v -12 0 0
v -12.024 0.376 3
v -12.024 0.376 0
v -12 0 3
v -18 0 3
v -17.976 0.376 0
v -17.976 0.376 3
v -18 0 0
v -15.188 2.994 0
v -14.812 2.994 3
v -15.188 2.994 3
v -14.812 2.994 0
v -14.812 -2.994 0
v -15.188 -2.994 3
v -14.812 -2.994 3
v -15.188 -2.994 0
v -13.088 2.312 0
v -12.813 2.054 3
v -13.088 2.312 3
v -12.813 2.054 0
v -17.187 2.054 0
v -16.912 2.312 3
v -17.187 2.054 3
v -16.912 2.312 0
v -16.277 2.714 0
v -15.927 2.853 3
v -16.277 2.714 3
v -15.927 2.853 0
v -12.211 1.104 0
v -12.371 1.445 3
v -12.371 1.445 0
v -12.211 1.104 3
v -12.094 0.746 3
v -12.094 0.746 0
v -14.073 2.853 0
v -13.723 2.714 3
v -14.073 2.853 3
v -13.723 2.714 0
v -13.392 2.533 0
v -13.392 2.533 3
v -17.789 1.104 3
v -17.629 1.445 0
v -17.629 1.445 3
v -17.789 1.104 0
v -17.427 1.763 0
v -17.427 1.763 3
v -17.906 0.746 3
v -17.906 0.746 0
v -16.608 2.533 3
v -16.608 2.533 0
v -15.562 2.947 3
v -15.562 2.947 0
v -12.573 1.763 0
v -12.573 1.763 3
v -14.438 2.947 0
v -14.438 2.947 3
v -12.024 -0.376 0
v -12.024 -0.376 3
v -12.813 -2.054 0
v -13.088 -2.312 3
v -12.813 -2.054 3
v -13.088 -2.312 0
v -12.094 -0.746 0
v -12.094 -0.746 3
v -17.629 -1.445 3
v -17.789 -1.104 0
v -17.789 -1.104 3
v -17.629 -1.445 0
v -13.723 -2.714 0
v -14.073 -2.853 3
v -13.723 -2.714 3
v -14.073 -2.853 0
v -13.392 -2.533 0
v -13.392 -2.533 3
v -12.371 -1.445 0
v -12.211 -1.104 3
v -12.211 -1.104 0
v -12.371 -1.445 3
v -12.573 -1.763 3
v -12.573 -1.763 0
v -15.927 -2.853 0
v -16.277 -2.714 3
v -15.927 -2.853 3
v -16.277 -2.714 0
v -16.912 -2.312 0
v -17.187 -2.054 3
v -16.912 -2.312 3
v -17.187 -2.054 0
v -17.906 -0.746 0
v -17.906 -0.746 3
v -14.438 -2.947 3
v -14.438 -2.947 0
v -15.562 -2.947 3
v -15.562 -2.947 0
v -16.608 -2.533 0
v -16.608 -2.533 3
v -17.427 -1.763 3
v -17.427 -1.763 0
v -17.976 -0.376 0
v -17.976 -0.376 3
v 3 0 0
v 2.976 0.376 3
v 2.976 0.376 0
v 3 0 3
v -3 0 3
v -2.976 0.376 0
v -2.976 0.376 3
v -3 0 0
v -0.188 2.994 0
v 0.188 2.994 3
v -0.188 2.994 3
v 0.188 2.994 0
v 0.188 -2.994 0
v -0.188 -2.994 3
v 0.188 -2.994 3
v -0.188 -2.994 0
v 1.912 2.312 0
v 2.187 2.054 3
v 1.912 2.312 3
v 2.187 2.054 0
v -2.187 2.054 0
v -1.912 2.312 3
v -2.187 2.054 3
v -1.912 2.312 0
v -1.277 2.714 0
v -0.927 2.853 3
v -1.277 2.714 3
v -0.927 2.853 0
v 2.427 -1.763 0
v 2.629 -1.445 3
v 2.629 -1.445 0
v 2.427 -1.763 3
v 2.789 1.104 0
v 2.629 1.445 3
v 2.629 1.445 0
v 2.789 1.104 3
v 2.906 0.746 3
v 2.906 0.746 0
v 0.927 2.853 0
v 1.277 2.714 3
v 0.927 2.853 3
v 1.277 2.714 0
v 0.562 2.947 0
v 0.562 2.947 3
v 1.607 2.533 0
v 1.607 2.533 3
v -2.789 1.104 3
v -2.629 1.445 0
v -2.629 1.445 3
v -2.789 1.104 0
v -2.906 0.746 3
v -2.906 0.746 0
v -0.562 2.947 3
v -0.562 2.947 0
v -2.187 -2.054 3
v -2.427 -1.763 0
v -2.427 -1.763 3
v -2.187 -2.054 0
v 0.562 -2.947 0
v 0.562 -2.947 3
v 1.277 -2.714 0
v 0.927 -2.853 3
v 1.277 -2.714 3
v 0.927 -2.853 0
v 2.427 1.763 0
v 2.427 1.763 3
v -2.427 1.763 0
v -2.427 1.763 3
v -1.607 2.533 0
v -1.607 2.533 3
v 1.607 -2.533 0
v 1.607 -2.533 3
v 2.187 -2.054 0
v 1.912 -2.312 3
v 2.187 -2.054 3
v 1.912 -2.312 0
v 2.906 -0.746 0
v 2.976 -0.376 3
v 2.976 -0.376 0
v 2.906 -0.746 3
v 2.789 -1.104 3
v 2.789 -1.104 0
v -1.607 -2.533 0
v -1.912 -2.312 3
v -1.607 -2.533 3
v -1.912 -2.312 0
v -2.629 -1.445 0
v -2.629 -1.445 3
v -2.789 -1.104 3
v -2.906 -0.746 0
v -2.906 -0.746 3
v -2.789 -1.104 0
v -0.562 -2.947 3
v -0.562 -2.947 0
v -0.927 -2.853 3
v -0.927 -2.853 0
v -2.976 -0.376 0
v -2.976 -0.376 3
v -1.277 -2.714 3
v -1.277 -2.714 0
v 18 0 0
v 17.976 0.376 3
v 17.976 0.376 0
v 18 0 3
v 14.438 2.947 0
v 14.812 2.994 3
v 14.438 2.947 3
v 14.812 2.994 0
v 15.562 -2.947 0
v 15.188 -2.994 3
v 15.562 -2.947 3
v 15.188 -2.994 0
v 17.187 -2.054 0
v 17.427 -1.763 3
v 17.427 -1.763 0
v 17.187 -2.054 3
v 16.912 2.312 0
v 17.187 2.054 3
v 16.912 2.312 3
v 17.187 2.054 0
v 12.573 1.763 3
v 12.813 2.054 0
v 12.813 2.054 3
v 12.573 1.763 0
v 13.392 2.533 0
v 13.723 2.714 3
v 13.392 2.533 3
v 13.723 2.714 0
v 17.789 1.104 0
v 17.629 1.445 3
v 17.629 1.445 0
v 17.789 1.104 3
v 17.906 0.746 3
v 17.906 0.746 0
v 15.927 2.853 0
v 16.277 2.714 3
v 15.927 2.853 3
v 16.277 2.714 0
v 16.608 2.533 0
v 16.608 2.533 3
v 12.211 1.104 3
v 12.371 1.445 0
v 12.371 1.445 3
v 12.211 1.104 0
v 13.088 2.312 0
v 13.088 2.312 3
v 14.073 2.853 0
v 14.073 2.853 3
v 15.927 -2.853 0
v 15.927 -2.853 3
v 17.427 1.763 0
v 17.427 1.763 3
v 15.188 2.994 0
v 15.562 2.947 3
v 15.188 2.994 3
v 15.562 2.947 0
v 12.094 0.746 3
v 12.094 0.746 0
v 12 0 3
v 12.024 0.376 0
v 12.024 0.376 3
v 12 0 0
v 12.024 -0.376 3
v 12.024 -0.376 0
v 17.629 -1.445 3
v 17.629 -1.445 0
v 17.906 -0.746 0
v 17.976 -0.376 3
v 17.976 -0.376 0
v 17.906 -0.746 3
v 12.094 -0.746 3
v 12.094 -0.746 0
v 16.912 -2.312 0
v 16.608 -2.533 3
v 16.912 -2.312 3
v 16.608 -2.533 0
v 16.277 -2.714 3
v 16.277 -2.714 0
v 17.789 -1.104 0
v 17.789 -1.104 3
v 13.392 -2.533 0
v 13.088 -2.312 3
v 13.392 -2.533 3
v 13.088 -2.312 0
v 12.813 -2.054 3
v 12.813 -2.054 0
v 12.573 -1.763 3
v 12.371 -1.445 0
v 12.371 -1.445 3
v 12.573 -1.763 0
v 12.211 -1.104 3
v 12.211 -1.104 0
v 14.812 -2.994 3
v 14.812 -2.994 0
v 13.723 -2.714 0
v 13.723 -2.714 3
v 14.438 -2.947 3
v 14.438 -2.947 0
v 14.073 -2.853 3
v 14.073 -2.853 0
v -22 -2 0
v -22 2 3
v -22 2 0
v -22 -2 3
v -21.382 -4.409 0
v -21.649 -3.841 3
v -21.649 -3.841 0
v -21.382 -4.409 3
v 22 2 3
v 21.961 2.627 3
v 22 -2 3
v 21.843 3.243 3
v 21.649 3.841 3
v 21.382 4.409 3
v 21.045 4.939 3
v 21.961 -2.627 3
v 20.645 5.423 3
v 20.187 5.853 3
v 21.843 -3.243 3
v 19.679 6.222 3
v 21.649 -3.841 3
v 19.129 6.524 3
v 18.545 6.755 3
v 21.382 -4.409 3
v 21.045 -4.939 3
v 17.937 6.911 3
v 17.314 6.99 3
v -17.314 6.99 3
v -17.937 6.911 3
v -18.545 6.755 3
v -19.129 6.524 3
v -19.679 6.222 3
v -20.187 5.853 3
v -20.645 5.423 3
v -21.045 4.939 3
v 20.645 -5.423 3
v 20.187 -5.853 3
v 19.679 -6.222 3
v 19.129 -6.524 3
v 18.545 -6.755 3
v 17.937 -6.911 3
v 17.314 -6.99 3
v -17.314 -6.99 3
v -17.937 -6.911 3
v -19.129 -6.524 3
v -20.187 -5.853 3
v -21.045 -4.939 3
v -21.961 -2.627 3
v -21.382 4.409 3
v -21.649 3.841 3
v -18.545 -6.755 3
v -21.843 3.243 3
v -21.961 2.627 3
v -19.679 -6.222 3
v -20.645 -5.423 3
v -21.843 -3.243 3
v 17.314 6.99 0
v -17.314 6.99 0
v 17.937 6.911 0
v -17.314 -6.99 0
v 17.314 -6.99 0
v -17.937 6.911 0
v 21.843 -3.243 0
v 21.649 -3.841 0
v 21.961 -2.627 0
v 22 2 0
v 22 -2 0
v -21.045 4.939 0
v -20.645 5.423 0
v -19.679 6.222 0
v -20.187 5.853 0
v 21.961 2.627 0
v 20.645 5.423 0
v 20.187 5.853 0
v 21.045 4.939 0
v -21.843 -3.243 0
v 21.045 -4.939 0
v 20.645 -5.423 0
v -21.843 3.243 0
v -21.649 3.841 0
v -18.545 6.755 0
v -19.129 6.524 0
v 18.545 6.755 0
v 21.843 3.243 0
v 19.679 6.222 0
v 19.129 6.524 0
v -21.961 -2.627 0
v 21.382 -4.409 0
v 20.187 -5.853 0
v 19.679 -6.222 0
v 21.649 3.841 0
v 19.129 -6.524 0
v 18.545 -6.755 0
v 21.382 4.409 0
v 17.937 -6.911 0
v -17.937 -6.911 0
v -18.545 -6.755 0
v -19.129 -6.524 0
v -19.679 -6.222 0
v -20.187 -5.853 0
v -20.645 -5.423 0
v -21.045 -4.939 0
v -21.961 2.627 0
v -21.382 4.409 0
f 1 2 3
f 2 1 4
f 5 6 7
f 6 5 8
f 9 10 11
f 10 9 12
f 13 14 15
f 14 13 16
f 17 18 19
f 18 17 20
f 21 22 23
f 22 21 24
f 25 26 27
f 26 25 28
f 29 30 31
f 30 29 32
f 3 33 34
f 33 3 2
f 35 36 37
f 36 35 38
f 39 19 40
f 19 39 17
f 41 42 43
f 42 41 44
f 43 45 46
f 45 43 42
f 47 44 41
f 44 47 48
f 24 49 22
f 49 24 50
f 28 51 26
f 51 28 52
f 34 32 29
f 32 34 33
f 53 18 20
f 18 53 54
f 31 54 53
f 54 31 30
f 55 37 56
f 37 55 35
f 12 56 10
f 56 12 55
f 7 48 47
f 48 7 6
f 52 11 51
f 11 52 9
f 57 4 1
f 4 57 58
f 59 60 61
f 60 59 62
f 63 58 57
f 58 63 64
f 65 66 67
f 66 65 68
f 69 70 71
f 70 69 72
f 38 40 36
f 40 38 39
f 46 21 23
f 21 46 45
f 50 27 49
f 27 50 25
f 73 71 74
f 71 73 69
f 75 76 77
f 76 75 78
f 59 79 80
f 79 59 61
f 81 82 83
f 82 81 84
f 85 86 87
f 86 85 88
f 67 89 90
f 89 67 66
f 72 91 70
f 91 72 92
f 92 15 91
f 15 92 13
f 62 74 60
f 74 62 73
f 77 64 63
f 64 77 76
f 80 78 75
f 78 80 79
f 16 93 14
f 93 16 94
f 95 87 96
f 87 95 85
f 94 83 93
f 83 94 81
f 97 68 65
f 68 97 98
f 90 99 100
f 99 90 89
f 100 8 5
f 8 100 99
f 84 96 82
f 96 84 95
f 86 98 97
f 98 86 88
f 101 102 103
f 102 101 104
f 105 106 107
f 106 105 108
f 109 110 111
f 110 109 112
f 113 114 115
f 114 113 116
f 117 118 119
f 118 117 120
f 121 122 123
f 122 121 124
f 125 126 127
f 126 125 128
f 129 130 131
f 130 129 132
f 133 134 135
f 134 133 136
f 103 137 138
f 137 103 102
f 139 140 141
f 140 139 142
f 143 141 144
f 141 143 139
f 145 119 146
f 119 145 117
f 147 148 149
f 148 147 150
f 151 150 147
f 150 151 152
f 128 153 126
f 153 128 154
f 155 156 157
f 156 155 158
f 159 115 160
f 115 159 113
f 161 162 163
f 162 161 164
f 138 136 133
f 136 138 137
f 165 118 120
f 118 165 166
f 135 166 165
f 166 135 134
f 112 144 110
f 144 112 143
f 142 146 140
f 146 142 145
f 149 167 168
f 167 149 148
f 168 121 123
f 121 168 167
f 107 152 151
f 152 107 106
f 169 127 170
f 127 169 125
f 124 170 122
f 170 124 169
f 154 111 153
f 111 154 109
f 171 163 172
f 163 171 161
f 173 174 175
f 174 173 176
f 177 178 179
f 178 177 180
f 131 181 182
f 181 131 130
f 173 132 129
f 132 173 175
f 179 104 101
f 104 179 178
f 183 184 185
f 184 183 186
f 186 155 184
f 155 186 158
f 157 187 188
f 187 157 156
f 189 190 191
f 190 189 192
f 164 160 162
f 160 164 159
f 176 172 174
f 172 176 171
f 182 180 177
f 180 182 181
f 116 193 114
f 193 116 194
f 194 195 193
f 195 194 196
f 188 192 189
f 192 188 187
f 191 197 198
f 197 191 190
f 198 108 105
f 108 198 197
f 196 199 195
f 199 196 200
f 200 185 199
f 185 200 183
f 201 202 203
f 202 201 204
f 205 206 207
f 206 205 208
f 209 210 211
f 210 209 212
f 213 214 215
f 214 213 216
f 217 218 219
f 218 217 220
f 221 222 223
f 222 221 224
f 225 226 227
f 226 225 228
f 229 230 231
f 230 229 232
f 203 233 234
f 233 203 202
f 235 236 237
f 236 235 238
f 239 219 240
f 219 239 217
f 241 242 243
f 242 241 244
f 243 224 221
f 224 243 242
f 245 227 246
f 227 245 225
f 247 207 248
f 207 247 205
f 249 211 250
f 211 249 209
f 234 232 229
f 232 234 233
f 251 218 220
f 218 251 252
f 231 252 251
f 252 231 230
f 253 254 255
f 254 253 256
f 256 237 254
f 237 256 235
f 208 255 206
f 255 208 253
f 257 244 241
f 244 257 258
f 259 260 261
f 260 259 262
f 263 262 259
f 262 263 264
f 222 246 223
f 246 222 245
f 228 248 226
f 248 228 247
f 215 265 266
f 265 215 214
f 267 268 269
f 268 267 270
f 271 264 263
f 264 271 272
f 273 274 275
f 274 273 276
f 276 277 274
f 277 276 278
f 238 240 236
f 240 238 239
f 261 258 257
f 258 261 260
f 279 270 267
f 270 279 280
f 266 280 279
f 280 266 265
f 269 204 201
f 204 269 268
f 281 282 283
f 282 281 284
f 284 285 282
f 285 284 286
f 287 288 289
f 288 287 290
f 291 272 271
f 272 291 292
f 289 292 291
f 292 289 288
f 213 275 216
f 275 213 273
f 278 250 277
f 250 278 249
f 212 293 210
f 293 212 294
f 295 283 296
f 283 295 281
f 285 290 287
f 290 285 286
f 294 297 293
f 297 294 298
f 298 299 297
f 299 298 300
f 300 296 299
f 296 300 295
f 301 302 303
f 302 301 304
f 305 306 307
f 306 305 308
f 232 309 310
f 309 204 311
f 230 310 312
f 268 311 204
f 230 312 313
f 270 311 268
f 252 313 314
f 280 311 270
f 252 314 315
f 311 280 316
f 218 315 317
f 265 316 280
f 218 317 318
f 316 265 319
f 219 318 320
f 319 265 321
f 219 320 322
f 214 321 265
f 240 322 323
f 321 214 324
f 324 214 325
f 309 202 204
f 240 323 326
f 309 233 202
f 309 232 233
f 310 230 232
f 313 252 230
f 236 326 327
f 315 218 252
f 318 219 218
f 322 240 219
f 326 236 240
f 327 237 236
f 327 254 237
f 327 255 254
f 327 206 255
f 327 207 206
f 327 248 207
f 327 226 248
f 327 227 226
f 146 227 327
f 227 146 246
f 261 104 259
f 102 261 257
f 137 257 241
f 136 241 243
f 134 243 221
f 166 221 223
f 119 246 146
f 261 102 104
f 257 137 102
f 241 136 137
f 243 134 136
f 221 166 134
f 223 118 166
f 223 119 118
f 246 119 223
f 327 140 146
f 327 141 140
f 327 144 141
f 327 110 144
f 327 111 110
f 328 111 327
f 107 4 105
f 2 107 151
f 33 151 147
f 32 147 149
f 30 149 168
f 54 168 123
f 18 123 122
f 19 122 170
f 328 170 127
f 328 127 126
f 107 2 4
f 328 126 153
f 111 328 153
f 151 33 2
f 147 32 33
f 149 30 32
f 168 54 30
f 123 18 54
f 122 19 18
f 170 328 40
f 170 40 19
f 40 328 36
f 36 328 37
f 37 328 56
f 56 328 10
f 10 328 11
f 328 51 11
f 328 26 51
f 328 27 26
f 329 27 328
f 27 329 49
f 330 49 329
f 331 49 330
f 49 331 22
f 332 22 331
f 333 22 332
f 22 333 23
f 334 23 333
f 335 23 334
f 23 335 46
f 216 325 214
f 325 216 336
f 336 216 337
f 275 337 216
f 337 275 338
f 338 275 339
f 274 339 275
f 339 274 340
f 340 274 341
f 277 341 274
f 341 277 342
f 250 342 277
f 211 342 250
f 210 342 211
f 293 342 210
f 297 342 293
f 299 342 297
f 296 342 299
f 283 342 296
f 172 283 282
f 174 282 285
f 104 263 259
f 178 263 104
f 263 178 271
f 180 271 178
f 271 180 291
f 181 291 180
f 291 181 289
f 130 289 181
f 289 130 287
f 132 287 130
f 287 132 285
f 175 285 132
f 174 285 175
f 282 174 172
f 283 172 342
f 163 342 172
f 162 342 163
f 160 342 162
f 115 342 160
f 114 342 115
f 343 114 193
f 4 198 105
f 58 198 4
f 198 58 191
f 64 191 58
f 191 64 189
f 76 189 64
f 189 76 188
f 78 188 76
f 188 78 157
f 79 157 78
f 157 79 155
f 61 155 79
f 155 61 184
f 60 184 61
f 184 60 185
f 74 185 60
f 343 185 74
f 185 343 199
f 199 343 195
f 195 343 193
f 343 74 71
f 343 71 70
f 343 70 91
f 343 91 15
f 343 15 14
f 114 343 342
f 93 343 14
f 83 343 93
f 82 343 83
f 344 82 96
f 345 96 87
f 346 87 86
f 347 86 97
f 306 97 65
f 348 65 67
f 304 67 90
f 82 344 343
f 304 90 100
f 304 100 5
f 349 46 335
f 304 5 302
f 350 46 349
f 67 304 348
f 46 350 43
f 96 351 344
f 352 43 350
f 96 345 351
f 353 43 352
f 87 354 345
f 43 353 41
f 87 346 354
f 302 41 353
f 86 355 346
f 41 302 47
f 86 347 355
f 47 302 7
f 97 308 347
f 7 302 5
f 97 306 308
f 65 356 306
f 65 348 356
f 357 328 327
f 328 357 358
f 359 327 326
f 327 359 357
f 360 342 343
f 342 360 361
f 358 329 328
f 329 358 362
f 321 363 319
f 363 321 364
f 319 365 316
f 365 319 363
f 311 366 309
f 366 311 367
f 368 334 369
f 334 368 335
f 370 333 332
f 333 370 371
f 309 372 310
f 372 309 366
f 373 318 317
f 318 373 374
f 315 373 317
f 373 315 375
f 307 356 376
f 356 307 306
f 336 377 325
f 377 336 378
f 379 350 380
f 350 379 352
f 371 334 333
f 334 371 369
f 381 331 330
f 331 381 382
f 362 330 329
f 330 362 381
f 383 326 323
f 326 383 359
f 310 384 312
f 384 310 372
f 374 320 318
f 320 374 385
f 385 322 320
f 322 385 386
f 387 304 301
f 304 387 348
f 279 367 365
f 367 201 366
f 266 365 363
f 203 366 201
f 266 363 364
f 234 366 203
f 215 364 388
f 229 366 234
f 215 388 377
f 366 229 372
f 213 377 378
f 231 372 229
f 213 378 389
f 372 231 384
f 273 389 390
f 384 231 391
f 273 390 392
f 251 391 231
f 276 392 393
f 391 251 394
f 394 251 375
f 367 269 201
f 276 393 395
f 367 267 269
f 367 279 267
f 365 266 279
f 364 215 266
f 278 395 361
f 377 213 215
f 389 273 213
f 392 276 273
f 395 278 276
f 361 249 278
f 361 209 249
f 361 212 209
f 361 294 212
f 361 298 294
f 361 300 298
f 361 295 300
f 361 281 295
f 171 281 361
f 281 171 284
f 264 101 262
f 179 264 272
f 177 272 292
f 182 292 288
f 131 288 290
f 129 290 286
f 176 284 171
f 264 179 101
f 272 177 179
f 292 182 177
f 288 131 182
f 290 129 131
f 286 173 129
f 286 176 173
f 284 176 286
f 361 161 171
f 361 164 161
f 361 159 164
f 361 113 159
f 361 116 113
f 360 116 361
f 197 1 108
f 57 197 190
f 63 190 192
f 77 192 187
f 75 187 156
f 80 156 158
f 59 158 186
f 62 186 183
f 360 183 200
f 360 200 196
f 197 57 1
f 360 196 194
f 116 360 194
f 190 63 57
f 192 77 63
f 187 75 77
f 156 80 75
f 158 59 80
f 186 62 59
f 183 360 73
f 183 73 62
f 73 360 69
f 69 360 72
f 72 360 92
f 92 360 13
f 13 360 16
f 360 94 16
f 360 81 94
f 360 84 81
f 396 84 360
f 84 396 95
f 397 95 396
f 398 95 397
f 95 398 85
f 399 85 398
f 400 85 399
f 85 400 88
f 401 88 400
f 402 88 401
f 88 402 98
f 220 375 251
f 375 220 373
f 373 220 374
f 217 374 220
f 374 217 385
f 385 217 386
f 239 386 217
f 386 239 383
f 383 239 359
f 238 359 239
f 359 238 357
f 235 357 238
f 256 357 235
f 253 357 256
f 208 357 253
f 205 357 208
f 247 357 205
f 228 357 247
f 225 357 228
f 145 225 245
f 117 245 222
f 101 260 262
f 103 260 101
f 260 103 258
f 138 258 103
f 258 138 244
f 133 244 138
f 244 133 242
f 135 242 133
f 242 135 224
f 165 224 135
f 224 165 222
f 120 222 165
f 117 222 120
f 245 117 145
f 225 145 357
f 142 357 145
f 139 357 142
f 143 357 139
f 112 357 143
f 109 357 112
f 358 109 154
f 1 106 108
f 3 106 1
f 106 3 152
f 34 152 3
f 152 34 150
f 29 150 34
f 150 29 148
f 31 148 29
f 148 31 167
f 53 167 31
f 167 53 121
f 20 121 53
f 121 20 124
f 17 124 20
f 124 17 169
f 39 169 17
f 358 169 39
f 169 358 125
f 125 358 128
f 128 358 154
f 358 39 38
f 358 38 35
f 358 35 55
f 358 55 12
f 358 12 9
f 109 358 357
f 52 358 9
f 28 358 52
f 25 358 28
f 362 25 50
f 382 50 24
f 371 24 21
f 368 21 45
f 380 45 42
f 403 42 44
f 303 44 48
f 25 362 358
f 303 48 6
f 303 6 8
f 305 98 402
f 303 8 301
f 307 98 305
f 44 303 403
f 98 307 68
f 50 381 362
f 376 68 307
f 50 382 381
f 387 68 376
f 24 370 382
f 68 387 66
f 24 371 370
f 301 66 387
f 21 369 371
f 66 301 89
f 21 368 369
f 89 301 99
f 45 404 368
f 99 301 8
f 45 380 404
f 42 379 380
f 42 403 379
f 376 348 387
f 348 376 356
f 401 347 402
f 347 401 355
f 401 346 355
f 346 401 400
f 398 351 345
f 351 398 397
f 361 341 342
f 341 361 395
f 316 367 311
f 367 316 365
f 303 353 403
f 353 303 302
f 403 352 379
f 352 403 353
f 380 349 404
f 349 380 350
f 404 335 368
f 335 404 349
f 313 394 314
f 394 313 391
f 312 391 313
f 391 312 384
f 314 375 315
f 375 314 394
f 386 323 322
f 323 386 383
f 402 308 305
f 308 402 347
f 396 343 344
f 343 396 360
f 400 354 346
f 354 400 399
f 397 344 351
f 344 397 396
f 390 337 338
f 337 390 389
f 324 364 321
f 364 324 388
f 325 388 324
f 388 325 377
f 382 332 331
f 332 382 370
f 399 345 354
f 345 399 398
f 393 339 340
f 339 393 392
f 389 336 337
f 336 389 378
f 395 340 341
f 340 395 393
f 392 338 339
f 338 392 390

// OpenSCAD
$fn = 50;


difference() {
	union() {
		hull() {
			translate(v = [-17.0000000000, 2.0000000000, 0]) {
				cylinder(h = 3, r = 5);
			}
			translate(v = [17.0000000000, 2.0000000000, 0]) {
				cylinder(h = 3, r = 5);
			}
			translate(v = [-17.0000000000, -2.0000000000, 0]) {
				cylinder(h = 3, r = 5);
			}
			translate(v = [17.0000000000, -2.0000000000, 0]) {
				cylinder(h = 3, r = 5);
			}
		}
	}
	union() {
		translate(v = [-15.0000000000, 0.0000000000, 0]) {
			translate(v = [0, 0, -100]) {
				cylinder(h = 200, r = 3.0000000000);
			}
		}
		translate(v = [0, 0, -100]) {
			cylinder(h = 200, r = 3.0000000000);
		}
		translate(v = [15.0000000000, 0.0000000000, 0]) {
			translate(v = [0, 0, -100]) {
				cylinder(h = 200, r = 3.0000000000);
			}
		}
	}
}
